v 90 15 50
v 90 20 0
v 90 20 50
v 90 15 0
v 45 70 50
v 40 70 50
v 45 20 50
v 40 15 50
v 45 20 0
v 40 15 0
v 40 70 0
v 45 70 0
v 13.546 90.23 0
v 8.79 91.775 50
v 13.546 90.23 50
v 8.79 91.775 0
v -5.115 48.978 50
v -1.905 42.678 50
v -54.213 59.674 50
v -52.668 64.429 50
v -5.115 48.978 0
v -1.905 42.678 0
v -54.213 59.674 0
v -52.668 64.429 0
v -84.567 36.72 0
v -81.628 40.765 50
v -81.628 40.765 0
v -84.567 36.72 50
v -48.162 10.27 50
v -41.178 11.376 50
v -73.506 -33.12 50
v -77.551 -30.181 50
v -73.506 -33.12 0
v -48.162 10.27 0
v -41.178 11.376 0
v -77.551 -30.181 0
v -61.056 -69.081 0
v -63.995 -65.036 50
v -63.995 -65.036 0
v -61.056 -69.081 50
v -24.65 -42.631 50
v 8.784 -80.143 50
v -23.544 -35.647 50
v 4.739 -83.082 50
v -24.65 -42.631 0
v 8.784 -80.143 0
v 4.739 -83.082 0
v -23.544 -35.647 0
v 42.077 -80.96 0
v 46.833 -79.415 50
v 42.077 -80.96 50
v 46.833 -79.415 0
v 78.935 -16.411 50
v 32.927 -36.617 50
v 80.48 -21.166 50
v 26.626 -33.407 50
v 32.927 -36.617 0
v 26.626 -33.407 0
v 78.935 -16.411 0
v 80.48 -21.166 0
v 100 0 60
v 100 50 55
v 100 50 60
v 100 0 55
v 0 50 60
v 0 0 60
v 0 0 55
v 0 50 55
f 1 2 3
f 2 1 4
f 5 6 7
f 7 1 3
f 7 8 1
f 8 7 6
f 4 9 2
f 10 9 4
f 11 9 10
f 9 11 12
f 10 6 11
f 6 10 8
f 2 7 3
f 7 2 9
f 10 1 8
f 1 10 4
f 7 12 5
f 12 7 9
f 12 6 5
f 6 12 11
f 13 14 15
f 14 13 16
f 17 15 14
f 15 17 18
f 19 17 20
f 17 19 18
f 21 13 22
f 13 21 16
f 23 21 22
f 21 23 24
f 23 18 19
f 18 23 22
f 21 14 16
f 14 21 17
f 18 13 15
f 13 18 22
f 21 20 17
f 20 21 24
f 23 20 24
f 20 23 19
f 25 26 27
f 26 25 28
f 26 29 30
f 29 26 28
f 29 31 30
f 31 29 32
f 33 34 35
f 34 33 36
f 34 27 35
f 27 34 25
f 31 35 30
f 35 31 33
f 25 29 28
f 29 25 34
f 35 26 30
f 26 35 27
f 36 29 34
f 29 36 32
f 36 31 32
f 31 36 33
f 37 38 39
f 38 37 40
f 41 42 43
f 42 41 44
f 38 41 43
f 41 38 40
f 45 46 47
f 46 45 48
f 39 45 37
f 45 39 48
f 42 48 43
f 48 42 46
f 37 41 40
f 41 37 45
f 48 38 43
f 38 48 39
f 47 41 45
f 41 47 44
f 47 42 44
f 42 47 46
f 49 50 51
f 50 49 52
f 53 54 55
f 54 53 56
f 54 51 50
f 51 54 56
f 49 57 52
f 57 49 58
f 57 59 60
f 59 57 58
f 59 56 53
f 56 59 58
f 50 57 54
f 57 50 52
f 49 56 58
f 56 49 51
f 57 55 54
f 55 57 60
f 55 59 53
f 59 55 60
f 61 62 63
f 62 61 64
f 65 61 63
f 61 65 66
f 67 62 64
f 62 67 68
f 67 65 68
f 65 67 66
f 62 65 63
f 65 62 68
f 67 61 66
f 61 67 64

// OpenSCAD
// Parameters
plate_length = 100; // Length of the flat plate
plate_width = 50;   // Width of the flat plate
plate_thickness = 5; // Thickness of the flat plate

bracket_length = 50; // Length of one side of the L-shaped bracket
bracket_width = 50;  // Width of the bracket
bracket_thickness = 5; // Thickness of the bracket
bracket_offset = 10; // Offset from the edge of the flat plate

// Flat Plate
module flat_plate() {
    cube([plate_length, plate_width, plate_thickness]);
}

// L-Shaped Bracket
module l_shaped_bracket() {
    union() {
        cube([bracket_length, bracket_thickness, bracket_width]);
        translate([0, bracket_thickness, 0])
            cube([bracket_thickness, bracket_width, bracket_width]);
    }
}

// Assembly
module assembly() {
    // Layer 1: Flat Plate
    translate([0, 0, bracket_width + bracket_thickness])
        flat_plate();

    // Layer 2: L-Shaped Brackets
    for (i = [0:4]) {
        rotate([0, 0, i * 72]) // Distribute brackets evenly
            translate([plate_length / 2 - bracket_offset, plate_width / 2 - bracket_offset, 0])
                l_shaped_bracket();
    }
}

// Render the assembly
assembly();
